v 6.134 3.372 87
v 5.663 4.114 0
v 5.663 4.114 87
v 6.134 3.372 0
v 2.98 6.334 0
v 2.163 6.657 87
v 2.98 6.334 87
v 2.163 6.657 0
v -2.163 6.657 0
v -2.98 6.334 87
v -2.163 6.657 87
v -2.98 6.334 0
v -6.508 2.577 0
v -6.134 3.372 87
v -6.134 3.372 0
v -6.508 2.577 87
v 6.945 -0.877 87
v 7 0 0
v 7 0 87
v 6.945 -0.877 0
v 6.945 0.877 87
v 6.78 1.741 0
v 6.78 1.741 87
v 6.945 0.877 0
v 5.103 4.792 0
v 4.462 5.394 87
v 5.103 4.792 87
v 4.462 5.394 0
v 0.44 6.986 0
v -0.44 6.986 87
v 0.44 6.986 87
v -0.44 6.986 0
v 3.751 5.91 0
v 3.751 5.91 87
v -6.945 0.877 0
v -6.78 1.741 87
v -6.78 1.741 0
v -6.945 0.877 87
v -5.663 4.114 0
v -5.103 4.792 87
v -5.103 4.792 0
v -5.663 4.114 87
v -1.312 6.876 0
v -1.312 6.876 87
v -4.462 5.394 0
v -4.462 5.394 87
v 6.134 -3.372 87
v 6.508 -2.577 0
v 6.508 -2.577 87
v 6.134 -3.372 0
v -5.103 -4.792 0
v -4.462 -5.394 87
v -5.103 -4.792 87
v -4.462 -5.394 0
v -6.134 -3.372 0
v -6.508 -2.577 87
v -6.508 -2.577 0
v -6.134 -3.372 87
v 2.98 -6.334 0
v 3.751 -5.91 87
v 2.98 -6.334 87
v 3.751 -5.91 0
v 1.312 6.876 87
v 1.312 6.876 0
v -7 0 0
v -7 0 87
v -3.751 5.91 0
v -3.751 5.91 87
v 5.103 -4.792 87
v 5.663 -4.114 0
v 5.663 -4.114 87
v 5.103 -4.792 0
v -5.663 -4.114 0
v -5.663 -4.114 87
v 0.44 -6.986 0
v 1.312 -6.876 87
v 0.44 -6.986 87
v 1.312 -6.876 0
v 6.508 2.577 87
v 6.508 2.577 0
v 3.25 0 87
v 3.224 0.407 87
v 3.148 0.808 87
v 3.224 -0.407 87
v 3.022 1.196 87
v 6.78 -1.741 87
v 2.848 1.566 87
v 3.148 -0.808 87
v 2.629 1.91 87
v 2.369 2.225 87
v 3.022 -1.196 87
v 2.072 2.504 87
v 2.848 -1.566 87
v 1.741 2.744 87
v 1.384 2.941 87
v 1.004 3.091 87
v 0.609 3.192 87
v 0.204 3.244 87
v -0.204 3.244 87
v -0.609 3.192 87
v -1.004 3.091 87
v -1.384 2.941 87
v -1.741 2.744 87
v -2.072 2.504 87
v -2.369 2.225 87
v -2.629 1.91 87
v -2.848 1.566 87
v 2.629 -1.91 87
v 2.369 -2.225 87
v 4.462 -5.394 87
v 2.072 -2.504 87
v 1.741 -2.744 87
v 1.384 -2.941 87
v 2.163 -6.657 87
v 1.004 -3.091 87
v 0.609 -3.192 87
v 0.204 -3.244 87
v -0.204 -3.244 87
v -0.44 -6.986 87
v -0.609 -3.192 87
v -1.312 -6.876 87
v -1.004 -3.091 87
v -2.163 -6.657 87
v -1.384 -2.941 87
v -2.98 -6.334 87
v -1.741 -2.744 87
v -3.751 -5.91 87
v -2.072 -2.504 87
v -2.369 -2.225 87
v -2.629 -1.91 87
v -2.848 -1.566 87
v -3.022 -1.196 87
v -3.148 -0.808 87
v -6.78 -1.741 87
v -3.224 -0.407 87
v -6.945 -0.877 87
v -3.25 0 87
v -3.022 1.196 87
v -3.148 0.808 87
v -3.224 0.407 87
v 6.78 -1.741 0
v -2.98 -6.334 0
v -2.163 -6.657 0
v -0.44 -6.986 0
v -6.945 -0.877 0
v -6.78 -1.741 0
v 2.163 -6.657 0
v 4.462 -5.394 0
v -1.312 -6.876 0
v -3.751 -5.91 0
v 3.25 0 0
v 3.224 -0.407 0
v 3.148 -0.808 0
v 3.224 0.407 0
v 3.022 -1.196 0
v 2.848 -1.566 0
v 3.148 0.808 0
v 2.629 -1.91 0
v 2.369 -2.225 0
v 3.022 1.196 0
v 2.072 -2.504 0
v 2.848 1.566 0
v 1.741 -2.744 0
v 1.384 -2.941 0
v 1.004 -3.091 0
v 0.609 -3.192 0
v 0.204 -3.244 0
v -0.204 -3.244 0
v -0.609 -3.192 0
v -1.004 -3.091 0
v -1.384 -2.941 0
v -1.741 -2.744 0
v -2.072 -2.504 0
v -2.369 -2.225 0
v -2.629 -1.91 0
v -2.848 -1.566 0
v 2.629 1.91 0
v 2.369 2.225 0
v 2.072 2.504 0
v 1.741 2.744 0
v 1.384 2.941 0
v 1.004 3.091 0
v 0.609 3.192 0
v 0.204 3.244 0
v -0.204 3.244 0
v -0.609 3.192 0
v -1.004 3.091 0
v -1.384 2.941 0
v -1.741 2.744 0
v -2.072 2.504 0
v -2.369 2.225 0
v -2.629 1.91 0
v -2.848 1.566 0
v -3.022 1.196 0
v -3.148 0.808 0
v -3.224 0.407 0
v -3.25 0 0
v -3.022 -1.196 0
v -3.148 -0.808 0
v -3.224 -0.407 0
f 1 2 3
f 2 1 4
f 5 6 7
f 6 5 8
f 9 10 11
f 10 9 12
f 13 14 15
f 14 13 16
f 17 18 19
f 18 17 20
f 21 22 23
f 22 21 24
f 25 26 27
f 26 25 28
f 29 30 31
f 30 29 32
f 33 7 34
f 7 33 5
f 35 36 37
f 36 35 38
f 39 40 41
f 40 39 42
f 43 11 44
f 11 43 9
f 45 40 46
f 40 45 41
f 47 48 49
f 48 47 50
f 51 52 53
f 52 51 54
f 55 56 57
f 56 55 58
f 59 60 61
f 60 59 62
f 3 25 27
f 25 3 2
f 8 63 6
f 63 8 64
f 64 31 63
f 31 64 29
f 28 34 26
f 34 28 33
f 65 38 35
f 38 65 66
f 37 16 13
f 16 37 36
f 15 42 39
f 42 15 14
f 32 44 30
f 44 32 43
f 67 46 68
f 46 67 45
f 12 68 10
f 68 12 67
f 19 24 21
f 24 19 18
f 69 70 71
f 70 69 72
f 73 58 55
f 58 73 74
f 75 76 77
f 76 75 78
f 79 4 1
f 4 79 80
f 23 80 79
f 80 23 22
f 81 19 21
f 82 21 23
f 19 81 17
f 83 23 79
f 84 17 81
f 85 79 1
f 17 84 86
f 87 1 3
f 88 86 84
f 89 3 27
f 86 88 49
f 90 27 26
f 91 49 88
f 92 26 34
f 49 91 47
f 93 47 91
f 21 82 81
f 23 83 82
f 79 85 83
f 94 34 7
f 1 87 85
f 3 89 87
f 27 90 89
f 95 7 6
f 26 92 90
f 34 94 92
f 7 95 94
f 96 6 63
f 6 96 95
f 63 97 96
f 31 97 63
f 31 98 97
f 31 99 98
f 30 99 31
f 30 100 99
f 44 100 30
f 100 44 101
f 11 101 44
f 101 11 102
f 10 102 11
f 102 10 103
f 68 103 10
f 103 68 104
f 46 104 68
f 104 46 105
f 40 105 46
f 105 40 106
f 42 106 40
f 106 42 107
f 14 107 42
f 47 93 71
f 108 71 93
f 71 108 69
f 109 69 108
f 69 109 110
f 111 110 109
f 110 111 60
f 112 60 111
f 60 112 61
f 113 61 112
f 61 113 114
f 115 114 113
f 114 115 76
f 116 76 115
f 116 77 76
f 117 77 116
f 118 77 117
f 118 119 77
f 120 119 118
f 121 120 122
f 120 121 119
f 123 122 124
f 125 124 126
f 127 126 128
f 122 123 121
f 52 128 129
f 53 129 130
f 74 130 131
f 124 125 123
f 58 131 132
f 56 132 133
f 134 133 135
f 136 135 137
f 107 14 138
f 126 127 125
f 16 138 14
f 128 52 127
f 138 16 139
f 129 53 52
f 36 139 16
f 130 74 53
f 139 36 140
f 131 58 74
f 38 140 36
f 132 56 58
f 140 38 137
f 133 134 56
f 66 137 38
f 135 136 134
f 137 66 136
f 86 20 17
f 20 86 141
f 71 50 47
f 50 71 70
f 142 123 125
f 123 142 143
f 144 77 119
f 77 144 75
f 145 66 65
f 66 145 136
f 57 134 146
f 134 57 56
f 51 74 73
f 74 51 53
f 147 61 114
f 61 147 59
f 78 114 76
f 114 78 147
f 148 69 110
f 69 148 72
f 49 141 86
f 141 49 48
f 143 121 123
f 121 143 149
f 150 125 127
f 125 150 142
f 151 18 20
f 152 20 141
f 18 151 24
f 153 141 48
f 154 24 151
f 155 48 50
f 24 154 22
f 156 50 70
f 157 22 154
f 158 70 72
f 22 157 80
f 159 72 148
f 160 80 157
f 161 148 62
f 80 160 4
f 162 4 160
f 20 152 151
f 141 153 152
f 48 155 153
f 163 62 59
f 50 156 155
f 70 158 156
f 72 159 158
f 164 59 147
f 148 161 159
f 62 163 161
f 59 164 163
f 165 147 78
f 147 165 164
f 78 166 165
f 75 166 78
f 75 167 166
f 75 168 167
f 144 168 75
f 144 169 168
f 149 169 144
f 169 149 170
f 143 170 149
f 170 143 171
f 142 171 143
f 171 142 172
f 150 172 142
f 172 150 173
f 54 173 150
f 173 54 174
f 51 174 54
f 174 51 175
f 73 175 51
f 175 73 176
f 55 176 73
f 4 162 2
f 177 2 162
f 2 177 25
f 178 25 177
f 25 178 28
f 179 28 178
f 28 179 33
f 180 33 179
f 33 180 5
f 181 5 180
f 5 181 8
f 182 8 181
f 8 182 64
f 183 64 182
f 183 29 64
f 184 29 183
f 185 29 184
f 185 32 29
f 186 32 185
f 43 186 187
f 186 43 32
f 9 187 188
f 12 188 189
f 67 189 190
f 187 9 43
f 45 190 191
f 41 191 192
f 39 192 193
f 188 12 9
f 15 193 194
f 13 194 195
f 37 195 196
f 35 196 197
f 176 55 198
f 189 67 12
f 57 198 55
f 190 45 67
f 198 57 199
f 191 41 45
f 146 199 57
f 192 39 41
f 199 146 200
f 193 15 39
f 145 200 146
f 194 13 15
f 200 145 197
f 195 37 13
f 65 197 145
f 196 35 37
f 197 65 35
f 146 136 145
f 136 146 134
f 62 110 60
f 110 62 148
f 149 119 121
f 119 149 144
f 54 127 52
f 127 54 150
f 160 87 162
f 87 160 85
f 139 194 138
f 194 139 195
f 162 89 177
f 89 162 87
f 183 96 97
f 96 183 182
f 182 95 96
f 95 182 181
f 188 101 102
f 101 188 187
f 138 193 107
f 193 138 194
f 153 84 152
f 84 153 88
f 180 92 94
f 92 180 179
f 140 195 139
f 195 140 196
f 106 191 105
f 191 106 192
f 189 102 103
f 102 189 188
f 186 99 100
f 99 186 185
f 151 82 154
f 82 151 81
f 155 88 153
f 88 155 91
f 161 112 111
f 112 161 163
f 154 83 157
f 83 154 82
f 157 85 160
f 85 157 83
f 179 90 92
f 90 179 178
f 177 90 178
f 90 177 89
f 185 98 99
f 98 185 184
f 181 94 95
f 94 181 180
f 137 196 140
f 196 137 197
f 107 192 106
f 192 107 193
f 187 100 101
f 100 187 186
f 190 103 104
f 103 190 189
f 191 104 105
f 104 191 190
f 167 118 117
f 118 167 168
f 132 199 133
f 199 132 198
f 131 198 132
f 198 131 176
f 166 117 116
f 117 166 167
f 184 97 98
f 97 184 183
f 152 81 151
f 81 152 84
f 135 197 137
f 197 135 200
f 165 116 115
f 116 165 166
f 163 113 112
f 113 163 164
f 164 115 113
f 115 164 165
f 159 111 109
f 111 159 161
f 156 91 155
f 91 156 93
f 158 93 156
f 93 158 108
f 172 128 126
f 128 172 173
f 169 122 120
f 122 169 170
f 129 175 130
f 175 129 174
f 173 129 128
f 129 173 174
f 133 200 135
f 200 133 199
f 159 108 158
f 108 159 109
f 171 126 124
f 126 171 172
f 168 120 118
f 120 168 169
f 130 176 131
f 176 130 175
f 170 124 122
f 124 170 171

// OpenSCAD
$fn = 50;


difference() {
	union() {
		cylinder(h = 87, r = 7.0000000000);
	}
	union() {
		translate(v = [0.0000000000, 0.0000000000, -100.0000000000]) {
			cylinder(h = 200, r = 3.2500000000);
		}
	}
}
